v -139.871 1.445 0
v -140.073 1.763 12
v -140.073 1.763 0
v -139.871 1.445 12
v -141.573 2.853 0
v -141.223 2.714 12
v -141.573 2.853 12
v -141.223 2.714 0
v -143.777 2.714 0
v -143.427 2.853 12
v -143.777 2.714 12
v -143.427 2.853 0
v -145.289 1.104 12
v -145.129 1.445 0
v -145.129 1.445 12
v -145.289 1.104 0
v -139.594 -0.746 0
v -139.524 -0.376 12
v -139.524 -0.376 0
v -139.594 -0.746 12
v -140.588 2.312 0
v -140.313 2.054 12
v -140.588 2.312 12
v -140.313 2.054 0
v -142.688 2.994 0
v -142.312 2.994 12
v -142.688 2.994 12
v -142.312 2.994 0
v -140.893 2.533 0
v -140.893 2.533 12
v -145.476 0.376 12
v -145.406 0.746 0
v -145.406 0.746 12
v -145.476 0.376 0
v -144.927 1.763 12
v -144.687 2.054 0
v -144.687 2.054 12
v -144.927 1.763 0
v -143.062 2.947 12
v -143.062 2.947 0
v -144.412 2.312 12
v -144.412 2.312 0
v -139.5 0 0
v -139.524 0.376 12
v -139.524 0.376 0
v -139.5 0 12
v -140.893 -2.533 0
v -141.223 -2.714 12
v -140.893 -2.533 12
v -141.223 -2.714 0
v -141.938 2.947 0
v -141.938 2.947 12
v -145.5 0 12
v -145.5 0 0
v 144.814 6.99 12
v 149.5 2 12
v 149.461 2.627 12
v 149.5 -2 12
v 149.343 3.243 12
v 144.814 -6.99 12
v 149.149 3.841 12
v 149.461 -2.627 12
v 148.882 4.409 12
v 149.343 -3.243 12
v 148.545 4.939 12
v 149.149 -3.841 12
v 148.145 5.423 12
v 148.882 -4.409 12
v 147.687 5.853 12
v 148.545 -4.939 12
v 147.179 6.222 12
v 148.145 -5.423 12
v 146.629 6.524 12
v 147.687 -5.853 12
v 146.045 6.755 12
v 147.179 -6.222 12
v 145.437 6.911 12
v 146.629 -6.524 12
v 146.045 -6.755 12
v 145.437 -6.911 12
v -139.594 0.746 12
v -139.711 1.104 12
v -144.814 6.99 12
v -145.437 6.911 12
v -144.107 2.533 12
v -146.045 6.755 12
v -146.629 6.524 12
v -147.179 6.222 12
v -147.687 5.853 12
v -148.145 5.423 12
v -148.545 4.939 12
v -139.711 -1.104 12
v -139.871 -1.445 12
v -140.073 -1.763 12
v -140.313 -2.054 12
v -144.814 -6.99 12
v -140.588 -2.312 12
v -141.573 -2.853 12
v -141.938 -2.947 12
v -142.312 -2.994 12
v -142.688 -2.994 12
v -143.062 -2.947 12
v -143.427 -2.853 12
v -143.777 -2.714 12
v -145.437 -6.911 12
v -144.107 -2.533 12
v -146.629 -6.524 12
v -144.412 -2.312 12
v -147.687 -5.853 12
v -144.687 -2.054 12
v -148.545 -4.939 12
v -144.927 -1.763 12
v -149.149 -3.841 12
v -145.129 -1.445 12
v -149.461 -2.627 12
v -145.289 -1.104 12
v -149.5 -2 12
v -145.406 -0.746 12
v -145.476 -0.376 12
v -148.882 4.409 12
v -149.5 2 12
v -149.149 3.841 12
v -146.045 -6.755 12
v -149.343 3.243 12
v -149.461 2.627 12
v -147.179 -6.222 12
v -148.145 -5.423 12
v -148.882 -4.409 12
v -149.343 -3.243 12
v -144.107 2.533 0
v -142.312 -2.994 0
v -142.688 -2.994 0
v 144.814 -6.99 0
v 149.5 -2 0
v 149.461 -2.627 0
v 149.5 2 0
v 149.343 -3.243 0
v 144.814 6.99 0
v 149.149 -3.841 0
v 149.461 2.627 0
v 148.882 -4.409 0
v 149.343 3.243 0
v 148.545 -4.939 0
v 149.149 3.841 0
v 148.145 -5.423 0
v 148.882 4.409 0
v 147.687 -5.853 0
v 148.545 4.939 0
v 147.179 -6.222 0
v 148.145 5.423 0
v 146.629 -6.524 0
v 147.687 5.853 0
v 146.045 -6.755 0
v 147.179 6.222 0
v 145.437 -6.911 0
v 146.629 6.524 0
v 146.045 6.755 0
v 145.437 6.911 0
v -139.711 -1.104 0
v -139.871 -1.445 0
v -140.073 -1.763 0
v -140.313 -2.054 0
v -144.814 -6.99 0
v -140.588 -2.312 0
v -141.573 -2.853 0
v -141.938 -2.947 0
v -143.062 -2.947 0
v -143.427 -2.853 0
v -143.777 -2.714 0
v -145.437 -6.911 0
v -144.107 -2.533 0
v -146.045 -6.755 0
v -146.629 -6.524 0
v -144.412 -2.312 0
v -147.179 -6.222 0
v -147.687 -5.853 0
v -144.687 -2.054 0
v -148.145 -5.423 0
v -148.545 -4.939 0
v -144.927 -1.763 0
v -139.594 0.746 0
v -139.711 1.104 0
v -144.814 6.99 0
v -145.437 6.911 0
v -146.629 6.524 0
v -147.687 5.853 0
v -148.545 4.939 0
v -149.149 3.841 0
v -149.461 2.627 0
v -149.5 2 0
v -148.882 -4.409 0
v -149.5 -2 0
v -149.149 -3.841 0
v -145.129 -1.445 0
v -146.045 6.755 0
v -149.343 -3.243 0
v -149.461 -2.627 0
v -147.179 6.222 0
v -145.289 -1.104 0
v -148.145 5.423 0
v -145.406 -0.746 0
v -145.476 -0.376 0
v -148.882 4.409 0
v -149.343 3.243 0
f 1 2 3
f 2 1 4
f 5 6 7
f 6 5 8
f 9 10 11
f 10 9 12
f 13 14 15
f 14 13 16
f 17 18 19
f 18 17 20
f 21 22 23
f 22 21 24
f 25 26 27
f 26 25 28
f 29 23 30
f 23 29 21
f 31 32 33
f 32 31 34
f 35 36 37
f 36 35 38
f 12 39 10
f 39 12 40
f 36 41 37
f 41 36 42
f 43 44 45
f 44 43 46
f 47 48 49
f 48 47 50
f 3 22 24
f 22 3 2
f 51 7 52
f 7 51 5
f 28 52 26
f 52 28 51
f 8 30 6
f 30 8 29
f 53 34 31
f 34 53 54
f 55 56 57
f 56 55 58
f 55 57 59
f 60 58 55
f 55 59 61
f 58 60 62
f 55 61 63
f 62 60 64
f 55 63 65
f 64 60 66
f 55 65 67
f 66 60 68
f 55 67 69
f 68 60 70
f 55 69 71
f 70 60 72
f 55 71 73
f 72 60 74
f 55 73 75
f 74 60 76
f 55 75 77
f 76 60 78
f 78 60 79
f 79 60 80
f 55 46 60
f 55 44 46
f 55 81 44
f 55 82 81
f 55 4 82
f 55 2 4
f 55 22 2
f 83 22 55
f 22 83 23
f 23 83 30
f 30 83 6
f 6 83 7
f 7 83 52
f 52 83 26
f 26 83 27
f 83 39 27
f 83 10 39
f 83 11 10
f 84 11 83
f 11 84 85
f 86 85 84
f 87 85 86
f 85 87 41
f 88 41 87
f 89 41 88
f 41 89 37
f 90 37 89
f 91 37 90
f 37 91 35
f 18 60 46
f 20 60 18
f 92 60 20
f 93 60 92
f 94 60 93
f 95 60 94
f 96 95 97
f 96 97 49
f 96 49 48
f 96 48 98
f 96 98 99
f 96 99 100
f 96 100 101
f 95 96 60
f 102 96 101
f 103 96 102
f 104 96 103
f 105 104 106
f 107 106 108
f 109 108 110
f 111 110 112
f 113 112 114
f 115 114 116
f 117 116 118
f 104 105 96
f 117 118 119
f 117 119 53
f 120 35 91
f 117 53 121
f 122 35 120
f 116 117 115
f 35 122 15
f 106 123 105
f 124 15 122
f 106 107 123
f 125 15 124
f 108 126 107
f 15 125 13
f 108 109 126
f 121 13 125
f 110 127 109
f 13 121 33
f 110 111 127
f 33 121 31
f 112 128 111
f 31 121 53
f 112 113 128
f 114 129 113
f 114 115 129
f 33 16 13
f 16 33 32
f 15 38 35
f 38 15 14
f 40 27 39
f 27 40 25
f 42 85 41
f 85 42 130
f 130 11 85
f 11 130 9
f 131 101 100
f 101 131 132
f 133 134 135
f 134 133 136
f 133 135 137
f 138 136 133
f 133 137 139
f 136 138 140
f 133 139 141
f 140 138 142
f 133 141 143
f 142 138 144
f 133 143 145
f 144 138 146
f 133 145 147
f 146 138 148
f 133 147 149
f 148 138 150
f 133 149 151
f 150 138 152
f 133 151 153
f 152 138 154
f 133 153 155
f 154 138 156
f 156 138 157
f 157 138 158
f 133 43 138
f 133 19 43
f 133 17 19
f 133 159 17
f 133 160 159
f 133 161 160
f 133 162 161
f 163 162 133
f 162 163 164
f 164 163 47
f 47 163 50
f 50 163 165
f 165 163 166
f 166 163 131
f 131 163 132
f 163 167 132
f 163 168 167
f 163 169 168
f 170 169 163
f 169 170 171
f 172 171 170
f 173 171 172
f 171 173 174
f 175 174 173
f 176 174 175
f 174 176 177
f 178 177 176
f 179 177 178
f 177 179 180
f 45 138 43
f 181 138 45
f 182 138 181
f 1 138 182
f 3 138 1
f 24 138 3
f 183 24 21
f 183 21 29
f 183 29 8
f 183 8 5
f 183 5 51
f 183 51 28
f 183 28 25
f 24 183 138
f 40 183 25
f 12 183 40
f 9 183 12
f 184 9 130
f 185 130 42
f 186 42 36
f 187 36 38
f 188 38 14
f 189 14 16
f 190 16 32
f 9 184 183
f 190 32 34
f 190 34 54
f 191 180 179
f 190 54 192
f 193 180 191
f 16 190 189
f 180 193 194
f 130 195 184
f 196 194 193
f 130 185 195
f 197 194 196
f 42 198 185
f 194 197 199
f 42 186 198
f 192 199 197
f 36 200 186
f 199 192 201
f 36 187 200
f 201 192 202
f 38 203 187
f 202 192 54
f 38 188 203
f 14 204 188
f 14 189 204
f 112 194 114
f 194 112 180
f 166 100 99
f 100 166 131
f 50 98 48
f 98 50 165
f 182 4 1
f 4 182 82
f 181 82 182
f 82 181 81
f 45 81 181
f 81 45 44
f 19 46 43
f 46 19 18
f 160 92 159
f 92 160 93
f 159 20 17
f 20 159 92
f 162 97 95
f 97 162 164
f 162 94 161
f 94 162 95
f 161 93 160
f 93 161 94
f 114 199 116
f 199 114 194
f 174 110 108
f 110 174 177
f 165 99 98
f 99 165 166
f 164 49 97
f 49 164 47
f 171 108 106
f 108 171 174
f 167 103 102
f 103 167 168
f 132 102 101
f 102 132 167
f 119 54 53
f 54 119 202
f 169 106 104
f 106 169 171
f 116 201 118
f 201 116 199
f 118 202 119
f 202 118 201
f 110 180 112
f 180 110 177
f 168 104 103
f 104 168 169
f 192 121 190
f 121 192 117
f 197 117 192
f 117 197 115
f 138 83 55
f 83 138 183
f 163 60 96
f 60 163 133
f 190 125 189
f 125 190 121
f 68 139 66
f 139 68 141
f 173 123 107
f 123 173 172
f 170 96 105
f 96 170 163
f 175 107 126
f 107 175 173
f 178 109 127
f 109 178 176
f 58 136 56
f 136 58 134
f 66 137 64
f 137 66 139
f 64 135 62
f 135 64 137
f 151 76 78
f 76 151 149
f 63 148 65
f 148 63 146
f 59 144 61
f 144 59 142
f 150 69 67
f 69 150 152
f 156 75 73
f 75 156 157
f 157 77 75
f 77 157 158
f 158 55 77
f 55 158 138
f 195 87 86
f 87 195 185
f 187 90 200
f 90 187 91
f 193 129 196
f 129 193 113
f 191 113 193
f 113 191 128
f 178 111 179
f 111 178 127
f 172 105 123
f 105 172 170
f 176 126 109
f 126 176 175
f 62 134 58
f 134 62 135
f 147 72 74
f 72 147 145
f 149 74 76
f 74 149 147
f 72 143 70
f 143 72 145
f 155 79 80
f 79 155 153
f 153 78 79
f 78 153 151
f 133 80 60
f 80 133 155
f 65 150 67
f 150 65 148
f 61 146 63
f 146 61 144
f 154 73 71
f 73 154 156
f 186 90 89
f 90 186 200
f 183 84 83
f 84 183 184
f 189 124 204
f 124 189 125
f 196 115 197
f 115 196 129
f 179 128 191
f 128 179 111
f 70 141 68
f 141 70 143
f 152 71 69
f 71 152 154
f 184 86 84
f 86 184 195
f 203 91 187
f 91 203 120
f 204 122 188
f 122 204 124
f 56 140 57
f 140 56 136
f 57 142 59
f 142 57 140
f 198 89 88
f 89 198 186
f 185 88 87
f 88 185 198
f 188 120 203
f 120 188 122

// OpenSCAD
$fn = 50;


difference() {
	union() {
		hull() {
			translate(v = [-144.5000000000, 2.0000000000, 0]) {
				cylinder(h = 12, r = 5);
			}
			translate(v = [144.5000000000, 2.0000000000, 0]) {
				cylinder(h = 12, r = 5);
			}
			translate(v = [-144.5000000000, -2.0000000000, 0]) {
				cylinder(h = 12, r = 5);
			}
			translate(v = [144.5000000000, -2.0000000000, 0]) {
				cylinder(h = 12, r = 5);
			}
		}
	}
	union() {
		translate(v = [-142.5000000000, 0.0000000000, 0]) {
			cylinder(h = 12, r = 3.0000000000);
		}
		translate(v = [-142.5000000000, 0.0000000000, 0]) {
			cylinder(h = 12, r = 1.5000000000);
		}
		translate(v = [-142.5000000000, 0.0000000000, 0]) {
			cylinder(h = 12, r = 1.5000000000);
		}
		translate(v = [-142.5000000000, 0.0000000000, 0]) {
			cylinder(h = 12, r = 1.5000000000);
		}
	}
}
